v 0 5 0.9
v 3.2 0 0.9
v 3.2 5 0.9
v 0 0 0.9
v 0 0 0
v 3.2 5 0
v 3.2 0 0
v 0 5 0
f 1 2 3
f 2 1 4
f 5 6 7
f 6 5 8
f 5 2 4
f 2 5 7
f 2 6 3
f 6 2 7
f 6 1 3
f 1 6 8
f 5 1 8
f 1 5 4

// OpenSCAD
/* Warning, this is a very basic generator with a lot of approximation 
input data : [VDFN, H7A, 3.2x5.0x0.9mm, 6, , A, C04-01009A]
generated by com.zoubworld.electronics.cad.model3d.Basic
Date : Sun Feb 15 10:50:49 CET 2026
*/

//body
color("black")
translate([0,0,0])
cube([3.2,5.0,0.9], center=false);
